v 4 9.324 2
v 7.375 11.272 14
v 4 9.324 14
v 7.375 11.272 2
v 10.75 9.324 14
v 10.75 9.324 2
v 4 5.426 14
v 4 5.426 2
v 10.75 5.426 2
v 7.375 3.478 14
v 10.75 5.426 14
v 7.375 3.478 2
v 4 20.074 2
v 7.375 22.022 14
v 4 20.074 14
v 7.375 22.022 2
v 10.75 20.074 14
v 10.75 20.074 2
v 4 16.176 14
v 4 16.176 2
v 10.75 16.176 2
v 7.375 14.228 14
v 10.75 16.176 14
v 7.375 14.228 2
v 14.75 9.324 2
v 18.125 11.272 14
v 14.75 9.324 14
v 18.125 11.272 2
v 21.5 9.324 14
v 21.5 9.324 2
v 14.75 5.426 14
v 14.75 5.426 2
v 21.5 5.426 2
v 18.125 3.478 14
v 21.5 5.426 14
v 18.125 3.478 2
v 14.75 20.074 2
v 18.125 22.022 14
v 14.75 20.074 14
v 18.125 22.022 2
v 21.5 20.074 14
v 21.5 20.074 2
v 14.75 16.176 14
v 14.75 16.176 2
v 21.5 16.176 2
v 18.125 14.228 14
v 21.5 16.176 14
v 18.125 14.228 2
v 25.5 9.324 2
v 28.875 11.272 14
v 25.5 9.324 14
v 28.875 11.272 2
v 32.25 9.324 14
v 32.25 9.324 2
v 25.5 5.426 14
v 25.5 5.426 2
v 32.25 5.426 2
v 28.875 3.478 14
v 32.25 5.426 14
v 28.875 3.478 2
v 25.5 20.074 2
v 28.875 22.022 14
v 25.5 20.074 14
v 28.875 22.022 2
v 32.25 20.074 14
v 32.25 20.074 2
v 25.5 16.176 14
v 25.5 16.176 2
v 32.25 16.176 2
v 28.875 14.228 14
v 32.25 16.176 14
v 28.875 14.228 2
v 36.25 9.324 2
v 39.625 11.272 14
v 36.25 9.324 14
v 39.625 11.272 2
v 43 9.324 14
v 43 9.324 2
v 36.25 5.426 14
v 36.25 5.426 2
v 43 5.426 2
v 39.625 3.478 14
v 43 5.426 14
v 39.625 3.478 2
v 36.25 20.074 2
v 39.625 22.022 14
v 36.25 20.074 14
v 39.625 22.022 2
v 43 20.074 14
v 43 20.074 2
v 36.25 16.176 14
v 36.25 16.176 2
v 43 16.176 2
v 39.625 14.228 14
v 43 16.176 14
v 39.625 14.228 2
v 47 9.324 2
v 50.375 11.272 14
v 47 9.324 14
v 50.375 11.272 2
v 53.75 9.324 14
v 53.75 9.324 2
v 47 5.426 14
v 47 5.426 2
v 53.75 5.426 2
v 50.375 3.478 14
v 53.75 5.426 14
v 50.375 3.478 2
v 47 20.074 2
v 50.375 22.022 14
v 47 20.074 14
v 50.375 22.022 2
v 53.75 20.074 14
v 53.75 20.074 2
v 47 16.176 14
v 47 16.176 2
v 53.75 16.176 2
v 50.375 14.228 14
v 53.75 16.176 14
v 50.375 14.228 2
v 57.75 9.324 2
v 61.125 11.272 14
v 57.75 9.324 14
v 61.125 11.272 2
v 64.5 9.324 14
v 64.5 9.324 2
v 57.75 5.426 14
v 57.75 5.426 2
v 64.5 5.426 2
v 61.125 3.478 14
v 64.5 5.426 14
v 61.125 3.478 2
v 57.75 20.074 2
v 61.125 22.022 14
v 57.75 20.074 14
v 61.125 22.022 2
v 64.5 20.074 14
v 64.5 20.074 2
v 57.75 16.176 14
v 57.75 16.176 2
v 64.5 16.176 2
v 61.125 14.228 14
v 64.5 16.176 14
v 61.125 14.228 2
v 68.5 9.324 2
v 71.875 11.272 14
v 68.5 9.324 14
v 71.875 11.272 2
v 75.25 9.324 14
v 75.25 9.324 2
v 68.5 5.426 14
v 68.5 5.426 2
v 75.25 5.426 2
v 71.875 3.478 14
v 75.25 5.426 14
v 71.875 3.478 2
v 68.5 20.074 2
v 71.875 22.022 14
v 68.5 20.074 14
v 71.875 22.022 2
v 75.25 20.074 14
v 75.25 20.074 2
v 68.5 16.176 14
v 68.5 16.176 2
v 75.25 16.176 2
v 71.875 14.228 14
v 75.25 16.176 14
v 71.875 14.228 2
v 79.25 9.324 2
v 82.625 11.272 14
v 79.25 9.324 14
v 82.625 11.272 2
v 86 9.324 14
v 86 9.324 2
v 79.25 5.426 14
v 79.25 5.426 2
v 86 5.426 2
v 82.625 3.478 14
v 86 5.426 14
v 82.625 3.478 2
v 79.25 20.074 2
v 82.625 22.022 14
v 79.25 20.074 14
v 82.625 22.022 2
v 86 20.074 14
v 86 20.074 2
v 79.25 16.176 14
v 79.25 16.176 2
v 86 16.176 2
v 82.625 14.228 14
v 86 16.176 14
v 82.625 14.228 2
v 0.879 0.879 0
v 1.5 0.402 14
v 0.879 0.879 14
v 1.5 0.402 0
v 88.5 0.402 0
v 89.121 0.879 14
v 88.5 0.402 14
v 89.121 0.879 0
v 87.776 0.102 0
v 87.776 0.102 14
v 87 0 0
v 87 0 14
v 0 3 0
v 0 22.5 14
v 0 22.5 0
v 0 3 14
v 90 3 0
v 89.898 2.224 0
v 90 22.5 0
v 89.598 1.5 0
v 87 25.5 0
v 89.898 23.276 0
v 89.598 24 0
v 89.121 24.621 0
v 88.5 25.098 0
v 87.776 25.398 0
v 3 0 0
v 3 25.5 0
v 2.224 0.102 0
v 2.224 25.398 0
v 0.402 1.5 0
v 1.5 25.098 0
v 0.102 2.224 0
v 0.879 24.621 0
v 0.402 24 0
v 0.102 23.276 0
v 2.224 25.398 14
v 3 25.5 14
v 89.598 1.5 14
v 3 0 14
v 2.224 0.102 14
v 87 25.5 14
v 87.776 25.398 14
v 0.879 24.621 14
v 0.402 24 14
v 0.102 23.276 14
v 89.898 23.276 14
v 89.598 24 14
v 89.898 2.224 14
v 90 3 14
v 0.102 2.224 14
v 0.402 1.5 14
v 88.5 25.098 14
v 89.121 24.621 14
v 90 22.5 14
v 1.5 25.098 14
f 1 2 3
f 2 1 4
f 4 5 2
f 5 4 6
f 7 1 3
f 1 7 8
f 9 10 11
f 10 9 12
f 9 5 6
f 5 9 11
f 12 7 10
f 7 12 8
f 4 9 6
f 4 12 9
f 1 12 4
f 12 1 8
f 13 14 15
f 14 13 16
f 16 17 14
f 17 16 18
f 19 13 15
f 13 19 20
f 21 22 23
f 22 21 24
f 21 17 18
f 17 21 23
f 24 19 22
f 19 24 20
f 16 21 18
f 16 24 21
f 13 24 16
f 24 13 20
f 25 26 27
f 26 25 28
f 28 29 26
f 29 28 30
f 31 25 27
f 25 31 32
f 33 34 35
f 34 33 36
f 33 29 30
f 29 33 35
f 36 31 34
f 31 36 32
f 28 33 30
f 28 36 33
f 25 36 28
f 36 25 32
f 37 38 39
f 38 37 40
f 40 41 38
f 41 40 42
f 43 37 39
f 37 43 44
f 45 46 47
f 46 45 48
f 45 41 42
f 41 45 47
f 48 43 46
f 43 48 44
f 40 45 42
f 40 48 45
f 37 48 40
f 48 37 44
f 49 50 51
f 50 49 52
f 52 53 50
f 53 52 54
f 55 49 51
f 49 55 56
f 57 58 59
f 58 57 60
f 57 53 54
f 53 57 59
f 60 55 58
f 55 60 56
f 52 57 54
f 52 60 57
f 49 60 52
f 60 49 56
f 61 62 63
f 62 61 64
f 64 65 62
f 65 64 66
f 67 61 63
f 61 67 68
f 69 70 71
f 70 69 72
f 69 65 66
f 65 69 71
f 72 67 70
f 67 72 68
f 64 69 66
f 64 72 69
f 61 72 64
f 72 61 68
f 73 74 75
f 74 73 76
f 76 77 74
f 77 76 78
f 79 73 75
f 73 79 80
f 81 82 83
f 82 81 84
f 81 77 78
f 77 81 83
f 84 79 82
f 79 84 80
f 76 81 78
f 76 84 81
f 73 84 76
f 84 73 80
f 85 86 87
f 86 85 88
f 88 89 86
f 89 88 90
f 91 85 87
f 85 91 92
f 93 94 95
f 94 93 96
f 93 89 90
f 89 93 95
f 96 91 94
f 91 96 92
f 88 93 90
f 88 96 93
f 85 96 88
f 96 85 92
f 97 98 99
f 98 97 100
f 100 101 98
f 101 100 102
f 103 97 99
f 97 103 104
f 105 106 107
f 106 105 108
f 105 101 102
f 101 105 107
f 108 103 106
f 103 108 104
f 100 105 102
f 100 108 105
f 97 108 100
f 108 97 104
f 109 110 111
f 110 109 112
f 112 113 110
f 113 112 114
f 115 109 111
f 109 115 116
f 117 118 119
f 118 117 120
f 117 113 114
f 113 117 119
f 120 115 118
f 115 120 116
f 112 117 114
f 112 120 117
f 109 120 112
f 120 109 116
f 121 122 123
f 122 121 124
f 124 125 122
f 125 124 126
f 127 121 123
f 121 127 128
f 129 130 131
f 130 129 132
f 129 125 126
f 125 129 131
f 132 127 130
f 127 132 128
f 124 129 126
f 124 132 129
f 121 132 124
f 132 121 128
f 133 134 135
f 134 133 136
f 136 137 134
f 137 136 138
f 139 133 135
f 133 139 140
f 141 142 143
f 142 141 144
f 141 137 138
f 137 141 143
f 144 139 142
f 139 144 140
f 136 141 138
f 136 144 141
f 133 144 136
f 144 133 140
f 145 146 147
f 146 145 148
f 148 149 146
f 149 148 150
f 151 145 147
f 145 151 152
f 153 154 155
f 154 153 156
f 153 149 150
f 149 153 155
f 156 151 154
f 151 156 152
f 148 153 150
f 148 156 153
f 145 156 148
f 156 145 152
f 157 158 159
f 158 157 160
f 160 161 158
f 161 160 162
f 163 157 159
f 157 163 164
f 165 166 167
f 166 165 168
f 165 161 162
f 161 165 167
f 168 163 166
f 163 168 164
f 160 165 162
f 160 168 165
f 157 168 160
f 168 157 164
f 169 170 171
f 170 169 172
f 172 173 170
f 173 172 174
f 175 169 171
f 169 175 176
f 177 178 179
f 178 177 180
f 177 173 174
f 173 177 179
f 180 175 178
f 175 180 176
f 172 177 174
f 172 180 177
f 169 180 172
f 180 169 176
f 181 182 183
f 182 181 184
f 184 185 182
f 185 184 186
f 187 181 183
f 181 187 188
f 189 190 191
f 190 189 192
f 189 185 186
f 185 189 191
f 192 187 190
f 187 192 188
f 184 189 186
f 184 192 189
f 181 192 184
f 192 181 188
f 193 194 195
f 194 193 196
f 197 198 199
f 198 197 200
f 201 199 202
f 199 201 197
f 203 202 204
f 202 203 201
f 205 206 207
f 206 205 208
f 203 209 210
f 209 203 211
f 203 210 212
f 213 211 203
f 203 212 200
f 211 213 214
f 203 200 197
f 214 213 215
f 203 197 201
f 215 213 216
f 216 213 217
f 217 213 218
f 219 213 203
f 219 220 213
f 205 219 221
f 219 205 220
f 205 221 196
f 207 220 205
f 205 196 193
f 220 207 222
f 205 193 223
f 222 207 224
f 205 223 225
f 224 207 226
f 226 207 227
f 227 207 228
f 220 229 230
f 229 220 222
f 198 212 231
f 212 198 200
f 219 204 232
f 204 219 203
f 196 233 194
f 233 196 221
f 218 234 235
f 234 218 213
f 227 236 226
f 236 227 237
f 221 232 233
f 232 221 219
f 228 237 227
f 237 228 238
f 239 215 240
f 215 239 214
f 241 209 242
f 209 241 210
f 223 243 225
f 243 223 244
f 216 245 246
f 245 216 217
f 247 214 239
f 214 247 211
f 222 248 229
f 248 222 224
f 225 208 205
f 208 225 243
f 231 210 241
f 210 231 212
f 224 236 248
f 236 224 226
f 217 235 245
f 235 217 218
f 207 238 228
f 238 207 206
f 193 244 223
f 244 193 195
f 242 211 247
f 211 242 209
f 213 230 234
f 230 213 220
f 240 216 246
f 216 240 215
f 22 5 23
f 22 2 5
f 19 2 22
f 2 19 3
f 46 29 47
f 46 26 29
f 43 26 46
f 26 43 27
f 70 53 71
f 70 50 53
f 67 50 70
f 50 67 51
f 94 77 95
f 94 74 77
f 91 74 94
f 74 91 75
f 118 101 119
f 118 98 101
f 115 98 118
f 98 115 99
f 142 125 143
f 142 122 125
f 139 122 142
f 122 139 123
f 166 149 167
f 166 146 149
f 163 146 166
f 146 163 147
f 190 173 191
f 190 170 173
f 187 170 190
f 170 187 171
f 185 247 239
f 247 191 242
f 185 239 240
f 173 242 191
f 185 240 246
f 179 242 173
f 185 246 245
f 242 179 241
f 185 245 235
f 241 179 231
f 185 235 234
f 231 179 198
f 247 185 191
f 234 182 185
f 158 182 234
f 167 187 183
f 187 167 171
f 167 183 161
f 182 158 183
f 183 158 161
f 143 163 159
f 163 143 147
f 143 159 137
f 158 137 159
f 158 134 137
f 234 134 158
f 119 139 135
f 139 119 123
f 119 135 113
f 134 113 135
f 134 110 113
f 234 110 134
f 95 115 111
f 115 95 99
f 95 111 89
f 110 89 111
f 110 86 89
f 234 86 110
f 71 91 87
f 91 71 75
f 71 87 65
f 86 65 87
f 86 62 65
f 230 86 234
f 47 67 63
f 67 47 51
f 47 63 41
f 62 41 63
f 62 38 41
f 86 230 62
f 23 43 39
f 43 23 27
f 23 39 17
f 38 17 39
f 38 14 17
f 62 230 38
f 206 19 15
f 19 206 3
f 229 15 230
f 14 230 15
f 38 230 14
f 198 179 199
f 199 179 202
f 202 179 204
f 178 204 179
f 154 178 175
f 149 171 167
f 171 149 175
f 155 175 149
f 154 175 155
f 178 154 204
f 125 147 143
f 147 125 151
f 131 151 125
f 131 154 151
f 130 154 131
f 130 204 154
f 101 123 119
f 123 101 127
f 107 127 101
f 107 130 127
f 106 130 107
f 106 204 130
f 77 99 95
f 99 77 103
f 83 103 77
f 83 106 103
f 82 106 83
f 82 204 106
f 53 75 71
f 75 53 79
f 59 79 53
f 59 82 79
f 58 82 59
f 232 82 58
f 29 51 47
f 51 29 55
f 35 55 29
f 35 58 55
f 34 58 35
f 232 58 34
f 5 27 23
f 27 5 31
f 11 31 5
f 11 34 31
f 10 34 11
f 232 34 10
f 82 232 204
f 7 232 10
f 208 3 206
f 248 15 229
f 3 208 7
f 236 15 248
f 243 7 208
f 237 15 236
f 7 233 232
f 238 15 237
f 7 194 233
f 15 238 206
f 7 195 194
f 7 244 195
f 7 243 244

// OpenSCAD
// Bit & Hex Key Holder — keeps screwdriver bits or Allen keys sorted.
// mode "bits":     grid of 1/4" hex pockets for standard screwdriver bits.
// mode "hex_keys": a row of labelled holes, one per Allen key size.
// Print upright (as rendered).

mode = "bits";          // ["bits", "hex_keys"]

/* [Bits] */
cols = 8;               // [1:1:20]
rows = 2;               // [1:1:10]
// Pocket depth (mm). Standard bits are 25 mm long.
bit_depth = 12;         // [6:1:20]
// Hex across-flats + clearance (mm). 1/4" = 6.35.
bit_af = 6.75;          // [6.4:0.05:7.2]

/* [Hex keys] */
// Allen key sizes (mm)
key_sizes = [1.5, 2, 2.5, 3, 4, 5, 6, 8, 10];
// Hole depth (mm)
key_depth = 18;         // [8:1:30]

/* [Hidden] */
$fn = 6;
pitch = bit_af + 4;

// x position of each hex key hole
function px(i) = i == 0 ? 6 : px(i - 1) + key_sizes[i - 1] / 2 + key_sizes[i] / 2 + 7;

module rr(l, w) { offset(r = 3, $fn = 24) offset(delta = -3) square([l, w]); }

if (mode == "bits") {
    L = cols * pitch + 4; W = rows * pitch + 4; H = bit_depth + 2;
    difference() {
        linear_extrude(H) rr(L, W);
        for (i = [0 : cols - 1], j = [0 : rows - 1])
            translate([2 + pitch * (i + 0.5), 2 + pitch * (j + 0.5), 2])
                rotate(30) cylinder(d = bit_af / cos(30), h = H);
    }
} else {
    n = len(key_sizes);
    L = px(n - 1) + key_sizes[n - 1] / 2 + 6;
    W = 26; H = key_depth + 2;
    difference() {
        linear_extrude(H) rr(L, W);
        for (i = [0 : n - 1]) {
            translate([px(i), 17, 2])
                rotate(30) cylinder(d = (key_sizes[i] + 0.35) / cos(30), h = H);
            // size labels engraved on the top
            translate([px(i), 6, H - 0.8])
                linear_extrude(1) text(str(key_sizes[i]), size = 3.6, halign = "center", $fn = 16);
        }
    }
}
